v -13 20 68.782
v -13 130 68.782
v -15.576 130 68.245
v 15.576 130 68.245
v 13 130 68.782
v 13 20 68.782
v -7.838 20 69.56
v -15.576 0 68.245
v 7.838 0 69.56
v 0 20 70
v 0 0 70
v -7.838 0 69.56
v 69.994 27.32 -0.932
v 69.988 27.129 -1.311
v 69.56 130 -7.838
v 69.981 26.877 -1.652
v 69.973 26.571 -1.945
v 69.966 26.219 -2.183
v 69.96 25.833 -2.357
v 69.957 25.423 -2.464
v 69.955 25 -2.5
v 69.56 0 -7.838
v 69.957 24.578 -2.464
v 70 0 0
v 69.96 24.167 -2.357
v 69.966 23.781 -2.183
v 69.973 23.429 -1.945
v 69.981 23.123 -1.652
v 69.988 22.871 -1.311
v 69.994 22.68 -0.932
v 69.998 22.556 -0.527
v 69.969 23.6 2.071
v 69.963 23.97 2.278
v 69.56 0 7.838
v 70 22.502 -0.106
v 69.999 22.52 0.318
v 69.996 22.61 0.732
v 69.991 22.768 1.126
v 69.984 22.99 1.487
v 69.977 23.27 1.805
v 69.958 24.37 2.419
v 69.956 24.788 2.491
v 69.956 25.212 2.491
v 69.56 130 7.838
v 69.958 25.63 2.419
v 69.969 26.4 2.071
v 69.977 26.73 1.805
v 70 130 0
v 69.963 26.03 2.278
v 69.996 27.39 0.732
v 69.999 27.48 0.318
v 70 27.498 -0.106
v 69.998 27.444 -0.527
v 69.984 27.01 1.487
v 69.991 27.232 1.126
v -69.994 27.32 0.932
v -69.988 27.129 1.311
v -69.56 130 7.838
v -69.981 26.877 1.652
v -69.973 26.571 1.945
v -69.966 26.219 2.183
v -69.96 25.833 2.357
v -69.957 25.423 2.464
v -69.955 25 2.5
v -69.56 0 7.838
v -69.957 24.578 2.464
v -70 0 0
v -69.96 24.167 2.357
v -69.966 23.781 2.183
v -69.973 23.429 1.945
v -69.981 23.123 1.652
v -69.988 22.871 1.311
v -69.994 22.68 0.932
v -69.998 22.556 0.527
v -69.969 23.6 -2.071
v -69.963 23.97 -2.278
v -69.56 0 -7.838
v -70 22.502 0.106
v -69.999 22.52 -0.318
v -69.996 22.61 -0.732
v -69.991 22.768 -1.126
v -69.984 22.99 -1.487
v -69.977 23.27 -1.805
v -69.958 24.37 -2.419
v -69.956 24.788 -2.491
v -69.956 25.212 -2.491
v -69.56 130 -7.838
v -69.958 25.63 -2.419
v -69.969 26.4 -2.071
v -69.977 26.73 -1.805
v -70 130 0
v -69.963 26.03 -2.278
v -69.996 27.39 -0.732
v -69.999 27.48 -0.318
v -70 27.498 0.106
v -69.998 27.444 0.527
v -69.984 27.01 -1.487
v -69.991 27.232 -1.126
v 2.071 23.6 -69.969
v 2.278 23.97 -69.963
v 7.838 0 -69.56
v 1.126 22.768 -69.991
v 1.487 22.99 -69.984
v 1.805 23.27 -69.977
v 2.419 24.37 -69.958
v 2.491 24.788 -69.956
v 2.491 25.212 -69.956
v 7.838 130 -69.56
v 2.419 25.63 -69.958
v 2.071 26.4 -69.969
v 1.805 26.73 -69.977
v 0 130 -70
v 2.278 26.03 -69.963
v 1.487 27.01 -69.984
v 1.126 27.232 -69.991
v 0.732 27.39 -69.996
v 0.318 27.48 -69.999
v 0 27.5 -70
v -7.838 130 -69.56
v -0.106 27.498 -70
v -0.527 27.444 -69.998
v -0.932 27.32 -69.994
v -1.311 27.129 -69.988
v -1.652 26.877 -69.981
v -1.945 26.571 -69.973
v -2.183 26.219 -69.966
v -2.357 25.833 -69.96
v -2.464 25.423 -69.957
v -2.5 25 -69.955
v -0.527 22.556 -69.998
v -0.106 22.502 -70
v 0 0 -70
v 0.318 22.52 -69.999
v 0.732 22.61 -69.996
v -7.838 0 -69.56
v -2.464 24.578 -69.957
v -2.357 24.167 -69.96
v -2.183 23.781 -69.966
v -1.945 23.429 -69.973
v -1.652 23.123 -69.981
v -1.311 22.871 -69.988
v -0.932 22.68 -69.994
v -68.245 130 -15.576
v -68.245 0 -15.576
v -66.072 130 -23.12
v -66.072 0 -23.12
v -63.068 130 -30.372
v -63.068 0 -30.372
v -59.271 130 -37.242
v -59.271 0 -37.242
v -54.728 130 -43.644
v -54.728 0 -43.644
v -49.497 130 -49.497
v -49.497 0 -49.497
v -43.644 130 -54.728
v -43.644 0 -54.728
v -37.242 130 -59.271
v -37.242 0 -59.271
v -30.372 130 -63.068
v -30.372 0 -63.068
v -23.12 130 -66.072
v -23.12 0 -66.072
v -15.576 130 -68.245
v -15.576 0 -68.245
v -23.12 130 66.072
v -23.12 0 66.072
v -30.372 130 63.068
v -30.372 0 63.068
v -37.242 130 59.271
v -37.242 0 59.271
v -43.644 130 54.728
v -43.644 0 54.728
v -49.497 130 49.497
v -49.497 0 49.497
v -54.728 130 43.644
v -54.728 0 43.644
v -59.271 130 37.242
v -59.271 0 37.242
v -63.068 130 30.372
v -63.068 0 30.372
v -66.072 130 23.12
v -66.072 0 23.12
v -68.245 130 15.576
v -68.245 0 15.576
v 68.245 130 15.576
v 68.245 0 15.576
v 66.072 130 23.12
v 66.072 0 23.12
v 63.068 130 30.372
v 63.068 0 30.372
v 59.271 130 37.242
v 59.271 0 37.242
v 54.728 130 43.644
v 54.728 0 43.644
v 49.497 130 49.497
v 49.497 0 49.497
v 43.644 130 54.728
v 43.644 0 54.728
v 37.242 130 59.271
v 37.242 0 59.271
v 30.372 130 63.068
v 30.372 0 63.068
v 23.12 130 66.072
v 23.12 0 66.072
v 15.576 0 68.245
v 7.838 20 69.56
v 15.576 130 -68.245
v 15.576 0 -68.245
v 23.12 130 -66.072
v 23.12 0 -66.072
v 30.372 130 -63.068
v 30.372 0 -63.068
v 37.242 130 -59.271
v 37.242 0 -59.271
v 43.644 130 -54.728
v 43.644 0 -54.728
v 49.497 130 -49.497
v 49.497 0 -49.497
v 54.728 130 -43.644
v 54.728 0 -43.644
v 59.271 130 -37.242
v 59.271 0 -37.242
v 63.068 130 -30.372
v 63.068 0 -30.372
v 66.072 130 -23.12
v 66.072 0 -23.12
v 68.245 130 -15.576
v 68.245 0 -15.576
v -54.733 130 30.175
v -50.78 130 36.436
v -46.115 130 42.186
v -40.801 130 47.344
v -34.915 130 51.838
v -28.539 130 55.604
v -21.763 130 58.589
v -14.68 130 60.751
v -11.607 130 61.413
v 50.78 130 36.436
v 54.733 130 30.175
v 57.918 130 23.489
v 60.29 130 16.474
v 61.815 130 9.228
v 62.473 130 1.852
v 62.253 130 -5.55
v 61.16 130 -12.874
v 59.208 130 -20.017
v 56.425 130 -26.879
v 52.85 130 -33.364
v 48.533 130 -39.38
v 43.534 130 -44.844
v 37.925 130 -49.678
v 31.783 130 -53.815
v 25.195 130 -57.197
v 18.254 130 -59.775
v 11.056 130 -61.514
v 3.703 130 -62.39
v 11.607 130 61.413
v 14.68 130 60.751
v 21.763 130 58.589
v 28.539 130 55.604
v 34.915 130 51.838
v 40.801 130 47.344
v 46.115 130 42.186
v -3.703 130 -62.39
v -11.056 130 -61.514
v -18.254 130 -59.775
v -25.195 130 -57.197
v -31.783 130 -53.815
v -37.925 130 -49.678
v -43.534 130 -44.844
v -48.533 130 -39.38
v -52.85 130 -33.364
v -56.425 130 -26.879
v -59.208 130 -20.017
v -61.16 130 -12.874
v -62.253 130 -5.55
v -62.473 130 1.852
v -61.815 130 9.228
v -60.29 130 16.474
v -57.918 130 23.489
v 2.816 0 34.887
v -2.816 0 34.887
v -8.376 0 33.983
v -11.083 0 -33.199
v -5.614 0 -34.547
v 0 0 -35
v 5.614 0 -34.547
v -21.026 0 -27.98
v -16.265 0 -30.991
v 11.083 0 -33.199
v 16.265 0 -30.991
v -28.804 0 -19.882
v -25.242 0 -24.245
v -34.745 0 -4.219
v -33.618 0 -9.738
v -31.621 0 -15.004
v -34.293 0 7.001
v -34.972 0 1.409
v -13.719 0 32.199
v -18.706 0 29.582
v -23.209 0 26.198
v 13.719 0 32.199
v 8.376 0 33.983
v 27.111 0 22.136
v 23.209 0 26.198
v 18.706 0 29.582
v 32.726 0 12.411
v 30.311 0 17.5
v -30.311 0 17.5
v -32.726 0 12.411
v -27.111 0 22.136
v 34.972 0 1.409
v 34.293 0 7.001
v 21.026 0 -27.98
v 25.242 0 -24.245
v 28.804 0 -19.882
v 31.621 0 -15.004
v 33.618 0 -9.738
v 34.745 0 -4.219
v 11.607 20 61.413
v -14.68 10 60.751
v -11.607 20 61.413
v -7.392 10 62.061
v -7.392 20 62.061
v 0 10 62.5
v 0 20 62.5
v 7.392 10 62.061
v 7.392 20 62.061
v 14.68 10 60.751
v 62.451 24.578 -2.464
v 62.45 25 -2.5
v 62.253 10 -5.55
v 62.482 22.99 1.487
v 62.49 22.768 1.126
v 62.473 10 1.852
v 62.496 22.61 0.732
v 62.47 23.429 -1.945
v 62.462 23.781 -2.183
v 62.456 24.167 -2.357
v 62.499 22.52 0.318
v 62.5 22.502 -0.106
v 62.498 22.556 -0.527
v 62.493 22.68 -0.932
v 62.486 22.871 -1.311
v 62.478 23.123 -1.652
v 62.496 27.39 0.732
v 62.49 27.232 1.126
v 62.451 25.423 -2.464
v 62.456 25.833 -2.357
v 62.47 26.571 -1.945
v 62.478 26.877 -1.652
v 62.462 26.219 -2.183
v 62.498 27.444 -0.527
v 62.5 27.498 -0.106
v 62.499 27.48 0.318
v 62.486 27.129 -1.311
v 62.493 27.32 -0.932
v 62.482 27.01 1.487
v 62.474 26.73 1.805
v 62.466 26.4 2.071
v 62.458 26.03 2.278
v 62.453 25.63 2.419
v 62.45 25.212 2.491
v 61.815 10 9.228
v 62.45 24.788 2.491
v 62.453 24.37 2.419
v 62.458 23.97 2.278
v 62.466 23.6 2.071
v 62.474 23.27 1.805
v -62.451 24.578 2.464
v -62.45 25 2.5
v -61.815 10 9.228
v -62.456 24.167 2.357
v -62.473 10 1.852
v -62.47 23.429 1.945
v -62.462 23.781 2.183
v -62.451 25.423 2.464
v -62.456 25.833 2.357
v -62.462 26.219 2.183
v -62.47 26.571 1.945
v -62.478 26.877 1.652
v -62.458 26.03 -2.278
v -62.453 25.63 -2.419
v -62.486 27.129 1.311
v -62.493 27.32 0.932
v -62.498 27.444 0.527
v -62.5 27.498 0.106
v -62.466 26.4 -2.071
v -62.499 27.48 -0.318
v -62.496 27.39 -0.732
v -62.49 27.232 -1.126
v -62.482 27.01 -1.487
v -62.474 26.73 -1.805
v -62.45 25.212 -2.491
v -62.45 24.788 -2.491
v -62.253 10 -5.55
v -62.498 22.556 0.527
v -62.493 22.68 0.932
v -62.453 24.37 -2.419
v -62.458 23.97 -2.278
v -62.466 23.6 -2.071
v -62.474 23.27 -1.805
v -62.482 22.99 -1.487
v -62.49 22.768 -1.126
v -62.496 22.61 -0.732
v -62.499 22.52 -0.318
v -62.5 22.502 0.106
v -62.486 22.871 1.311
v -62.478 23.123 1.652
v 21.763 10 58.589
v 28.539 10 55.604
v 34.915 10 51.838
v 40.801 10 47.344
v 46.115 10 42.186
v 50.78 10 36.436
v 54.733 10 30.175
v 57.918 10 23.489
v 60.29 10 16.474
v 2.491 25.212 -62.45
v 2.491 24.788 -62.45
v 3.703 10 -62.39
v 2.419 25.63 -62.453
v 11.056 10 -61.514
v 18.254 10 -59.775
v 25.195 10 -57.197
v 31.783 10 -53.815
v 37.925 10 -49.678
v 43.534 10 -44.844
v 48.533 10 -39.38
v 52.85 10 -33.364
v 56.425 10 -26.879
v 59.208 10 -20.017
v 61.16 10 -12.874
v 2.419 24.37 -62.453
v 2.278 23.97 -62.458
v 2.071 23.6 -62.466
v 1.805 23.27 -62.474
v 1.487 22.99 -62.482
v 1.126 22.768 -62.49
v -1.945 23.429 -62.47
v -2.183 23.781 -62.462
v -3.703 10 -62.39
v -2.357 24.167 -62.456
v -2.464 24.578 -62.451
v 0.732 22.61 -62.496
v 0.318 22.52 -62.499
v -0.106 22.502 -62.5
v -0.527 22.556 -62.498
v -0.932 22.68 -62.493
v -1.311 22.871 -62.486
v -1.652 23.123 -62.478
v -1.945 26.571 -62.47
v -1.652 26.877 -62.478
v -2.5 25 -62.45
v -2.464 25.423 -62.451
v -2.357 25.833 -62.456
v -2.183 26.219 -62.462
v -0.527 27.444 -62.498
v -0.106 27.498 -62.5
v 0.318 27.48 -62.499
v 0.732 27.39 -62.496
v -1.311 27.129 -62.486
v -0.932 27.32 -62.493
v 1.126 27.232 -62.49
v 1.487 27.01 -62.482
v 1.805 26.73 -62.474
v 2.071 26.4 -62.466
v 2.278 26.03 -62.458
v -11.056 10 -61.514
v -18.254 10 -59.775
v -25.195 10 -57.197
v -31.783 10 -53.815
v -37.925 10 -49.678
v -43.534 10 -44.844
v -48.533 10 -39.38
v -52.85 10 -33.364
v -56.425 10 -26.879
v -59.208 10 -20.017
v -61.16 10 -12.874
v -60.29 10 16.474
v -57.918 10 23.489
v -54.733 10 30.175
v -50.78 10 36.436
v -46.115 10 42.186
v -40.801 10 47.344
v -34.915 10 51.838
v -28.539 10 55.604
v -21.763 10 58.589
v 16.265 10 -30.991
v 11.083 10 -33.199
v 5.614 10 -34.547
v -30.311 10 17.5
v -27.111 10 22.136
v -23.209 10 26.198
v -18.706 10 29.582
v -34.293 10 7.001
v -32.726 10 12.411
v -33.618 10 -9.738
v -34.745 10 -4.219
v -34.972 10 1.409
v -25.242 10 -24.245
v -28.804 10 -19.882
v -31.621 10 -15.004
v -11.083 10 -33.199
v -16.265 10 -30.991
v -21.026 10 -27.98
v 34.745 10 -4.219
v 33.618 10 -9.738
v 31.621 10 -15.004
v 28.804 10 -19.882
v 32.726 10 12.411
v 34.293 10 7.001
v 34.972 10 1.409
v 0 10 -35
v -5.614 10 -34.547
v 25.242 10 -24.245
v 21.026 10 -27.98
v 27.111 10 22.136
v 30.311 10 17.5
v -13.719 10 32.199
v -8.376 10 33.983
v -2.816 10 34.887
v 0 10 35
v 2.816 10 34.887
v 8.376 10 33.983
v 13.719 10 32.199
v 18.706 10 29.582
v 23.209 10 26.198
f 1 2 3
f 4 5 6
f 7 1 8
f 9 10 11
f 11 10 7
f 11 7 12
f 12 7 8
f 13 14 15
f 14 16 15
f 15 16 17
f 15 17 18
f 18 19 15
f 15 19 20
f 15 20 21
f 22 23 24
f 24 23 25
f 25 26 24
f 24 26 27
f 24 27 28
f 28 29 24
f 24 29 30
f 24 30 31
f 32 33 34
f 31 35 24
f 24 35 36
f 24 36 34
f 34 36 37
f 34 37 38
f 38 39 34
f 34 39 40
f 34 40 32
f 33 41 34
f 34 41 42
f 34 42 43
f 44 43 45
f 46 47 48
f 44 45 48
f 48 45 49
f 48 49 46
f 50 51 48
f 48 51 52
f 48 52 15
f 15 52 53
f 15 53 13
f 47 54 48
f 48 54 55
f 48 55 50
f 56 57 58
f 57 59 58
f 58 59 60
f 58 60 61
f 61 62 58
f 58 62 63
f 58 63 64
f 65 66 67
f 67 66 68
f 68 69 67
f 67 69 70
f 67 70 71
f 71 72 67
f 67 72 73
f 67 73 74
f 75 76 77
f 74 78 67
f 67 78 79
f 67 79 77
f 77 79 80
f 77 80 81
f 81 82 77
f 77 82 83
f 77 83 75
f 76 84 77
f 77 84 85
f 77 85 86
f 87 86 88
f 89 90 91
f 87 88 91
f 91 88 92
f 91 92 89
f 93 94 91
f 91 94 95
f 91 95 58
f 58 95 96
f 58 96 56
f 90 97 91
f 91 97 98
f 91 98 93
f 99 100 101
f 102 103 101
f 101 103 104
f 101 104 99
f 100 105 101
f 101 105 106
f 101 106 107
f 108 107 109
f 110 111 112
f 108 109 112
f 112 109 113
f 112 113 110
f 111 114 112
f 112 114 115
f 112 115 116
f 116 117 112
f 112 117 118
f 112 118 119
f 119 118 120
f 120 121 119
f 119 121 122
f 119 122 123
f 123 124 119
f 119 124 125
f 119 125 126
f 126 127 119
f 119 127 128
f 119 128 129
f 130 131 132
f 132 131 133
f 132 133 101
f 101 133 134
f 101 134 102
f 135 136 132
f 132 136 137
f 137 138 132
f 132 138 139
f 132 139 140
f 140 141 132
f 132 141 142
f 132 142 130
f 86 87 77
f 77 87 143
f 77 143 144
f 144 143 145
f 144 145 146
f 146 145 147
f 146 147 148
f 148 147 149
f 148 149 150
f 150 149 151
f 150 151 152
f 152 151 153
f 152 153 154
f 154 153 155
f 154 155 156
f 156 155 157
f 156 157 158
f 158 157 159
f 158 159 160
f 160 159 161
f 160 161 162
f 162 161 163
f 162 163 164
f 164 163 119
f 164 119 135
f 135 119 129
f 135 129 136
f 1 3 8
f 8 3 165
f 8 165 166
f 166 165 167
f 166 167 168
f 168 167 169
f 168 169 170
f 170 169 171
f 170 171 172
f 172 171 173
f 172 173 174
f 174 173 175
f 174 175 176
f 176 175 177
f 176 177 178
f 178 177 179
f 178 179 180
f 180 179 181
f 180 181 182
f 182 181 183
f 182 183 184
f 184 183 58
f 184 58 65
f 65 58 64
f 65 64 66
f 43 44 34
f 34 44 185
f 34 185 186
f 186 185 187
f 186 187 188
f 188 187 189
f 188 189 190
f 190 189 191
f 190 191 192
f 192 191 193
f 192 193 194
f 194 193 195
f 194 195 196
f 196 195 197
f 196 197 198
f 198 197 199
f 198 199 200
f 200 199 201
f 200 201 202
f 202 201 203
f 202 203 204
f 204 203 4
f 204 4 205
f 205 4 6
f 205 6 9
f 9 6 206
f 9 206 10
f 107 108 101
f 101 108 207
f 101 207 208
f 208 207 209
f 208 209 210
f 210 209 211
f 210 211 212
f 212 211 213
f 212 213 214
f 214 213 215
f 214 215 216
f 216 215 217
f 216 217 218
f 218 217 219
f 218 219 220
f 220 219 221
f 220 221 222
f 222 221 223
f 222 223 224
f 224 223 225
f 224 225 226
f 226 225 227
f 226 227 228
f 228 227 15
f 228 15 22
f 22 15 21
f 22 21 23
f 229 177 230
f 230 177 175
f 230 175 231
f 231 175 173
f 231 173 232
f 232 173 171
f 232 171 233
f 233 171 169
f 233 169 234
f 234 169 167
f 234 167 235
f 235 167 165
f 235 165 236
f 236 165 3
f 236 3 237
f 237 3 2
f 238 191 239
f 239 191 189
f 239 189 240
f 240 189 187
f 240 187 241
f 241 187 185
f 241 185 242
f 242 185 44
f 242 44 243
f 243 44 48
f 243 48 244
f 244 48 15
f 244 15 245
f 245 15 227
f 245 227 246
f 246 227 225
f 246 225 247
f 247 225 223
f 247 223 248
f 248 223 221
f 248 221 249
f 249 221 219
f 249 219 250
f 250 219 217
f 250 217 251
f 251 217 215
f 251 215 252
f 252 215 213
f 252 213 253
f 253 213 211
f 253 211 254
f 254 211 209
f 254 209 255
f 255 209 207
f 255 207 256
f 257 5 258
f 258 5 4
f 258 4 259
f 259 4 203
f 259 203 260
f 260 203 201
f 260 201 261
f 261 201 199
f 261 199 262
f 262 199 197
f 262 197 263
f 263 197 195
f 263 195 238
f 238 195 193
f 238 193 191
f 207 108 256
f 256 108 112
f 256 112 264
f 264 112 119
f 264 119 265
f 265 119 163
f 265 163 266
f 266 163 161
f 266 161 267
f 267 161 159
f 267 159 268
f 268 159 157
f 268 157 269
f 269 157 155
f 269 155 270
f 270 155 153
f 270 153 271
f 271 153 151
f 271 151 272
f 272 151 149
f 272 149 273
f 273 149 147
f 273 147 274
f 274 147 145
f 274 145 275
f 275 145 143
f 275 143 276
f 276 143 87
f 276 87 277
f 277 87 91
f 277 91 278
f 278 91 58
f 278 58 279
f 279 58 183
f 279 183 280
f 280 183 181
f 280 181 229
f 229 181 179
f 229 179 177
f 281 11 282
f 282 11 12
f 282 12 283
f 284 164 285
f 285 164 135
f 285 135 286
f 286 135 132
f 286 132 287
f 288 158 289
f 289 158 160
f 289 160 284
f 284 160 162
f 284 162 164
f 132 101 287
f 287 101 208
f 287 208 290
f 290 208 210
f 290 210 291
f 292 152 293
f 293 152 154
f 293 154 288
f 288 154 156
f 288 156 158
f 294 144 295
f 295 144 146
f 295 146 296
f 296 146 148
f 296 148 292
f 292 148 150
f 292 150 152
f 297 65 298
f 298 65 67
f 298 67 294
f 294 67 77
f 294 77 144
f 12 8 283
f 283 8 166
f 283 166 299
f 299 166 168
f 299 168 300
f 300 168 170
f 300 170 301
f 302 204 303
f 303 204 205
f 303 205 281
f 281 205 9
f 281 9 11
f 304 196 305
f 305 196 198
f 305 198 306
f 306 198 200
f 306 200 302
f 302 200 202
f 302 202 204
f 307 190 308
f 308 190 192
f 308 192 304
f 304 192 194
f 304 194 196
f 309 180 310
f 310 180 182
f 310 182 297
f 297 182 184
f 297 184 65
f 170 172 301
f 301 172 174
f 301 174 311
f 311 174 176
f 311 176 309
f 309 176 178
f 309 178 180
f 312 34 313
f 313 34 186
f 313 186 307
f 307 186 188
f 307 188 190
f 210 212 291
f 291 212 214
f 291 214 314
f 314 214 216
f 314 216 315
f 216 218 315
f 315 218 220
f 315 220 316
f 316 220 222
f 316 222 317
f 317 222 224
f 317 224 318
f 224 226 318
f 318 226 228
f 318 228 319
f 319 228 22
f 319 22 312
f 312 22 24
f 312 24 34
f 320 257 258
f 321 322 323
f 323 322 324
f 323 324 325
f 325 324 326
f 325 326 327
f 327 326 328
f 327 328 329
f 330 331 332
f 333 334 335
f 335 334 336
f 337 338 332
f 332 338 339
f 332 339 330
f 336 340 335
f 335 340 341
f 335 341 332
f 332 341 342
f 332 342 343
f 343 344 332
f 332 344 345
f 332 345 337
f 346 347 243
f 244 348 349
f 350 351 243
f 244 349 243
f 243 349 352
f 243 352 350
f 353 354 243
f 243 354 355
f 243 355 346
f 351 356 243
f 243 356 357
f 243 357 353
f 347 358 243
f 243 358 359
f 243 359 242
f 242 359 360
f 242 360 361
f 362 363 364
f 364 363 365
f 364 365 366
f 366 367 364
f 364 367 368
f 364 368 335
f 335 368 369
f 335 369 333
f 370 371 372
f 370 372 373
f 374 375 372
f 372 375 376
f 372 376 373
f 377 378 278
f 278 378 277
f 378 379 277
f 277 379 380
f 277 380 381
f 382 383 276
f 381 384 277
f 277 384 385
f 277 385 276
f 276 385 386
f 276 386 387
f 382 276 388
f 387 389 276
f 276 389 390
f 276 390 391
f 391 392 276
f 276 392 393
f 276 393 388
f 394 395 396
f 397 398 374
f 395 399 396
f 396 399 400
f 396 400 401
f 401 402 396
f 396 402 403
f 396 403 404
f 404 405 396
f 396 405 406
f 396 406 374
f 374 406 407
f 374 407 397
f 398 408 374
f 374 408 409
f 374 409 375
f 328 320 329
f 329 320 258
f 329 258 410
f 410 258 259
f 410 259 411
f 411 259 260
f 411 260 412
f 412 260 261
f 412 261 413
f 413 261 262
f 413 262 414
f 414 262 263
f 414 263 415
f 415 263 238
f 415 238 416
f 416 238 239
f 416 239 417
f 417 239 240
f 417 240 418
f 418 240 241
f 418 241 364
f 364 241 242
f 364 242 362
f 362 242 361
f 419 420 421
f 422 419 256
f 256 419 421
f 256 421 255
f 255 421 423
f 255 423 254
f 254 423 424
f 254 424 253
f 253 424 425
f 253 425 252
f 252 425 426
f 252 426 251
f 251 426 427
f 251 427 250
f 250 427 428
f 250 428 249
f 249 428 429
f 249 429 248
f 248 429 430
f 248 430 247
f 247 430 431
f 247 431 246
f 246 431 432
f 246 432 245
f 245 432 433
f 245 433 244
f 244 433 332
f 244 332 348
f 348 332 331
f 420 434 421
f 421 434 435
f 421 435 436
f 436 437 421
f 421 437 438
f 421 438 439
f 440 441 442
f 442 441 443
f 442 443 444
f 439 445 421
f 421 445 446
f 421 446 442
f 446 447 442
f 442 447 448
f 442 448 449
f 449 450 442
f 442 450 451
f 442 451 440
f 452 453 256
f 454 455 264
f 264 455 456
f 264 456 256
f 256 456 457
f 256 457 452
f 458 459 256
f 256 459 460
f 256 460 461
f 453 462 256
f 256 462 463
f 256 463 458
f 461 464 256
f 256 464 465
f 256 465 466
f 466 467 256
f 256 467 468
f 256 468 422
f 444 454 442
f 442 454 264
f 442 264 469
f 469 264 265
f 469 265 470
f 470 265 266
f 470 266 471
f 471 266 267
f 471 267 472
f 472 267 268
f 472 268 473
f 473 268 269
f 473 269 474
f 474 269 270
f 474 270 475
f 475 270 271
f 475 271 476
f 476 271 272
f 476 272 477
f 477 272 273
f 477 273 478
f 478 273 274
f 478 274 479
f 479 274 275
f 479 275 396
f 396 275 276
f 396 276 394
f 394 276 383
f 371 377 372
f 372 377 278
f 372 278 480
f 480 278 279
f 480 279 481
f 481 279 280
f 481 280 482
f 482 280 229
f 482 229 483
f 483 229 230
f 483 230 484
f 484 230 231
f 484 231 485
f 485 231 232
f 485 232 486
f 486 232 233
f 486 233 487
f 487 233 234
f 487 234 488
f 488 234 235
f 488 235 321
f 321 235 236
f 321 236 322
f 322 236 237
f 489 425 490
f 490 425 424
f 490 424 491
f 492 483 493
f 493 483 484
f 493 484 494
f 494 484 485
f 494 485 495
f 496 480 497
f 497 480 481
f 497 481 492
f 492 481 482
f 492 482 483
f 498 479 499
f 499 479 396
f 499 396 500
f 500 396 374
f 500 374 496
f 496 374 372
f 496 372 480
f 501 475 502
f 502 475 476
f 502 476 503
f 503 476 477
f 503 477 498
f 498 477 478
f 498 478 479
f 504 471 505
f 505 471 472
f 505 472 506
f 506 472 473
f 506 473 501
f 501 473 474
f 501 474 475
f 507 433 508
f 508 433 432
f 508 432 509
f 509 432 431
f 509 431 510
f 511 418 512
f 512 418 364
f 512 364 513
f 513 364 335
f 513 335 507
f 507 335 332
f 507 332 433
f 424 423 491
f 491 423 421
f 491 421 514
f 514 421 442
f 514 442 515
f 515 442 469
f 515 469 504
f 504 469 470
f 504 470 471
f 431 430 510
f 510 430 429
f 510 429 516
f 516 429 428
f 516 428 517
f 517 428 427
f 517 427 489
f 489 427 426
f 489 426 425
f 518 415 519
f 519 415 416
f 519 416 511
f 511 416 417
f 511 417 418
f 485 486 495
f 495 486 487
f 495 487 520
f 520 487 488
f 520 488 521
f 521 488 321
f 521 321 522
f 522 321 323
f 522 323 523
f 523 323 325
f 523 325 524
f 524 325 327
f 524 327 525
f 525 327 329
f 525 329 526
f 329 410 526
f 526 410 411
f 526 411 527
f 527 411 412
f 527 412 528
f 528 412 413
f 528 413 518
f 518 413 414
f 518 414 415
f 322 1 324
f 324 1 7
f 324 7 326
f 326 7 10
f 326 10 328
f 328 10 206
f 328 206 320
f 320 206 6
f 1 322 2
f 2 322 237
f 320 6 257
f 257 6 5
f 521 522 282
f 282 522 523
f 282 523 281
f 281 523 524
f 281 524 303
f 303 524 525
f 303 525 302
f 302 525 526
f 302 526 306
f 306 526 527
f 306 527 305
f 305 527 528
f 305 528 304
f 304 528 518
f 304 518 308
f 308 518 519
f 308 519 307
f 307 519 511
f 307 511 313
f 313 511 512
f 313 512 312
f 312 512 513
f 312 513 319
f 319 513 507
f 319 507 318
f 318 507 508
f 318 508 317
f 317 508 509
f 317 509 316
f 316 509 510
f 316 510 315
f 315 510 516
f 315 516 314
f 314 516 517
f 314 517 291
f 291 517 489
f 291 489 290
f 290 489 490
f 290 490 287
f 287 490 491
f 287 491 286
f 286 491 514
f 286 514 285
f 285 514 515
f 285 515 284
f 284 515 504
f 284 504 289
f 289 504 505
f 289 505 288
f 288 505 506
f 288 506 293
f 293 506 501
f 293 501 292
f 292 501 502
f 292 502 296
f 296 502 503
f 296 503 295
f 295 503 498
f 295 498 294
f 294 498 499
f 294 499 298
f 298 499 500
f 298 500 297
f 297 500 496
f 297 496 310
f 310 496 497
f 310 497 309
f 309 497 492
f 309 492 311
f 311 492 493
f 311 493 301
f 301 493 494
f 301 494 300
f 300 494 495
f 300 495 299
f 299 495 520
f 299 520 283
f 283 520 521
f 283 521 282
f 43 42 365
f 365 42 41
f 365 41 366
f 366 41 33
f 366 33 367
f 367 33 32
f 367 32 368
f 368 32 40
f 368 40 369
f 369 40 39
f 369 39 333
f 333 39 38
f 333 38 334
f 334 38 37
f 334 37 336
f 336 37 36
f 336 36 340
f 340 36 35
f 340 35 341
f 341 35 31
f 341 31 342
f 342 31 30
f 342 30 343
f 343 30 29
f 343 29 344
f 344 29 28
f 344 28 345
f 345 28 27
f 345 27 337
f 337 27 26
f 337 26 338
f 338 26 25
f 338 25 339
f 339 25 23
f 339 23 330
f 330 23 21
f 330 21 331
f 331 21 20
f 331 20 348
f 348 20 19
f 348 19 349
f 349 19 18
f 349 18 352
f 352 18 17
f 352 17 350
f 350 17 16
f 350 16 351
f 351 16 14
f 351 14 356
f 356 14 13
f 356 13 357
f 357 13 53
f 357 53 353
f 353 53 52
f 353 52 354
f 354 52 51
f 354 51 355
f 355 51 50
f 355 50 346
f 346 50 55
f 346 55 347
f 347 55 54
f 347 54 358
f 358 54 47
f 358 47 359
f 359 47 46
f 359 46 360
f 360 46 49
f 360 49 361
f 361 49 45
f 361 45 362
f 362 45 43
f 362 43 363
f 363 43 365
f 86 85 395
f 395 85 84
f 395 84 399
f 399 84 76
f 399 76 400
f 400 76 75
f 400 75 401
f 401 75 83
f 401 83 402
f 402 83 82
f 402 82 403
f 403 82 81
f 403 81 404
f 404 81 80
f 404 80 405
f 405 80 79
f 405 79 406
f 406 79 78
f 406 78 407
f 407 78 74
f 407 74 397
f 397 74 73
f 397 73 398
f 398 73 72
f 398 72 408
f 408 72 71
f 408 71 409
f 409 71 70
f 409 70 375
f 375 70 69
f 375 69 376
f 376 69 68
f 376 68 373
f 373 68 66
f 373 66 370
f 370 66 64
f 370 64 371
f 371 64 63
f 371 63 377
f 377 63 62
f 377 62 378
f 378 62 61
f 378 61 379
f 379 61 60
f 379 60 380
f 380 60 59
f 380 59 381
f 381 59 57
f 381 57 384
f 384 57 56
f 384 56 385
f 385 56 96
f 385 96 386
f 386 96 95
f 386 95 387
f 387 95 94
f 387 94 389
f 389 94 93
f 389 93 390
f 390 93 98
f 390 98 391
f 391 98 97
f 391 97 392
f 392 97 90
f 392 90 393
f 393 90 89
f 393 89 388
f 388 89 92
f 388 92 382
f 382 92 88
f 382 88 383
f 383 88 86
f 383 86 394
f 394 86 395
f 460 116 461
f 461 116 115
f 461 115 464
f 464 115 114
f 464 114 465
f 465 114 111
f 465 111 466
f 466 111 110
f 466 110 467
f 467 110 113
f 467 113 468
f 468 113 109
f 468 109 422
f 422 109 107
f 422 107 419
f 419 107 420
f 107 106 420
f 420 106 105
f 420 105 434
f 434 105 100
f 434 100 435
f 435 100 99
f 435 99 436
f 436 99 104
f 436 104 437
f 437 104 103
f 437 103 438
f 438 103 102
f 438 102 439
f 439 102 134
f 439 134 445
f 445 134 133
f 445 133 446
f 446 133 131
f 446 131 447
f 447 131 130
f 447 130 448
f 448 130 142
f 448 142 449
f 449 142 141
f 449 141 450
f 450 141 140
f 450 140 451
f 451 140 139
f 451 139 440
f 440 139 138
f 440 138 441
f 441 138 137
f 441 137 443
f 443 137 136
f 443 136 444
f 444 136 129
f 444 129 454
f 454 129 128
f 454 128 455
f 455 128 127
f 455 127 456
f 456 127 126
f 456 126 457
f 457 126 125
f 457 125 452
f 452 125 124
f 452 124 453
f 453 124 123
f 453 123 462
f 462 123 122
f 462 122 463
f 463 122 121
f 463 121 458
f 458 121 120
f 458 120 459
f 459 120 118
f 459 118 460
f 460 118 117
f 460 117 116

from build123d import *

# Parameters (mm, degrees)
SKETCH_235_R             = 70
EXTRUDE_1_DEPTH          = 130
SKETCH_315_R             = 62.5
CUT_EXTRUDE_1_DEPTH      = 120
CUT_EXTRUDE_2_DEPTH      = 110
SKETCH_5_R               = 35
CUT_EXTRUDE_3_DEPTH      = 110
SKETCH_9_R               = 2.5
CUT_EXTRUDE_5_DEPTH      = 30
PATTERN_CIRCULAR_2_COUNT = 4


with BuildPart() as part:
    # Sketch 235 → Бобышка-Вытянуть1 (new body)
    with BuildSketch(Plane(origin=(0, 0, 0), x_dir=(1, 0, 0), z_dir=(0, 1, 0))):
        Circle(SKETCH_235_R)
    extrude(amount=EXTRUDE_1_DEPTH)

    # Sketch 315 → Вырез-Вытянуть1 (cut)
    with BuildSketch(Plane(origin=(0, 130, 0), x_dir=(1, 0, 0), z_dir=(0, 1, 0))):
        Circle(SKETCH_315_R)
    extrude(amount=-CUT_EXTRUDE_1_DEPTH, mode=Mode.SUBTRACT)

    # Sketch 408 → Вырез-Вытянуть2 (cut)
    with BuildSketch(Plane(origin=(0, 130, 0), x_dir=(1, 0, 0), z_dir=(0, 1, 0))):
        Polygon((-11.607142857, -61.412736746), (-13, -68.782265156), (0, -74.034115552), (13, -68.782265156), (11.607142857, -61.412736746), align=None)
    extrude(amount=-CUT_EXTRUDE_2_DEPTH, mode=Mode.SUBTRACT)

    # Эскиз5 → Вырез-Вытянуть3 (cut)
    with BuildSketch(Plane.XZ):
        Circle(SKETCH_5_R)
    extrude(amount=-CUT_EXTRUDE_3_DEPTH, mode=Mode.SUBTRACT)

    # Эскиз9 → Вырез-Вытянуть5 (cut)
    with BuildSketch(Plane(origin=(70, 0, 0), x_dir=(0, 0, -1), z_dir=(1, 0, 0))):
        with Locations((0, 25)):
            Circle(SKETCH_9_R)
    cut_extrude_5 = extrude(amount=-CUT_EXTRUDE_5_DEPTH, mode=Mode.SUBTRACT)

    # Круговой массив2: Вырез-Вытянуть5 ×4 about axis
    pattern_circular_2_axis = Axis((0, -1.889670697, 0), (0, 1, 0))
    for i in range(1, PATTERN_CIRCULAR_2_COUNT):
        add(cut_extrude_5.rotate(pattern_circular_2_axis, i * 360 / PATTERN_CIRCULAR_2_COUNT), mode=Mode.SUBTRACT)


solid = part.part
